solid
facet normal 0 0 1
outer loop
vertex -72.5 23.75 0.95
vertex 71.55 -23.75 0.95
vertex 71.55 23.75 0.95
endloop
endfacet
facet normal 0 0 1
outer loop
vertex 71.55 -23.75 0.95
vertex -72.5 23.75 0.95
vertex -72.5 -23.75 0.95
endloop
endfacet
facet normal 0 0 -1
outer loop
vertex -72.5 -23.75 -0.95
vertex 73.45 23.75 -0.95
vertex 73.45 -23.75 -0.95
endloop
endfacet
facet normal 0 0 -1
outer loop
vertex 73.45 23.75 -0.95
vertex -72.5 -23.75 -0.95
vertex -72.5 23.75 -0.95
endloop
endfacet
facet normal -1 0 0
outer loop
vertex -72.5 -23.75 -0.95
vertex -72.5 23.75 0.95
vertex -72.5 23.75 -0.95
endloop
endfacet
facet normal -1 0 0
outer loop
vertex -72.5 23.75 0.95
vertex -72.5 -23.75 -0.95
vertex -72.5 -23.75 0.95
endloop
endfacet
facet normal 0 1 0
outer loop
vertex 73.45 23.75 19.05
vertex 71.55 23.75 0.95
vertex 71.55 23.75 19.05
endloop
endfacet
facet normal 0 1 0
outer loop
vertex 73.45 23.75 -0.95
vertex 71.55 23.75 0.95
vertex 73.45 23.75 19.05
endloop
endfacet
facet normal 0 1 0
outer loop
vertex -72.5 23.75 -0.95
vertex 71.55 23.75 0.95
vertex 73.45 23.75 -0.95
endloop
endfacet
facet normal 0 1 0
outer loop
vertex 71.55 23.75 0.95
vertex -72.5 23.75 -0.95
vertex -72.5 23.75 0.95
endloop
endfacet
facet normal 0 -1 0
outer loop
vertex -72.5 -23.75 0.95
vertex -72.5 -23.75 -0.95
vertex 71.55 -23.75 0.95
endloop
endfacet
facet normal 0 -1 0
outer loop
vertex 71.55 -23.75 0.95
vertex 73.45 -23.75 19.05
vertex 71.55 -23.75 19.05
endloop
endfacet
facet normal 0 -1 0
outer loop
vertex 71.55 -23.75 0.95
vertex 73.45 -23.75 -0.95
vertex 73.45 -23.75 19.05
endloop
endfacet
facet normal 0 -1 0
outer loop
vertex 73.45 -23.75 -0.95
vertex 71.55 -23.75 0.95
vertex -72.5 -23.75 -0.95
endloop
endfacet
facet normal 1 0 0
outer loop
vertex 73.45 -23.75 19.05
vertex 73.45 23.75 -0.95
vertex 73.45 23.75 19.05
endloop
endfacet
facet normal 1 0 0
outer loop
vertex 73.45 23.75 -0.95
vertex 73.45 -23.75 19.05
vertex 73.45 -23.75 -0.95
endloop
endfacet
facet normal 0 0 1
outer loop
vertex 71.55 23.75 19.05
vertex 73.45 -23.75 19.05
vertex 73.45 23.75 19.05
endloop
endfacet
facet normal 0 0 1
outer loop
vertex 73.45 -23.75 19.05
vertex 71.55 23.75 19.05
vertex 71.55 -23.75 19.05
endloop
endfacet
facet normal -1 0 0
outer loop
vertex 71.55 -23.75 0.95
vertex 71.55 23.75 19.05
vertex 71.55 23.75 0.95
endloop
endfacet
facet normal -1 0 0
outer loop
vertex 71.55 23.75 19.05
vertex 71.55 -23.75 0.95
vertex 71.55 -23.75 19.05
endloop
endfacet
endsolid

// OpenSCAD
$fn = 100;
union()
{
  cube(size = [145, 47.5, 1.9], center = true);
  translate(v = [72.5, 0, 0])
  {
    translate(v = [0, 0, 9.05])
    {
      cube(size = [1.9, 47.5, 20], center = true);
    }
  }
}
